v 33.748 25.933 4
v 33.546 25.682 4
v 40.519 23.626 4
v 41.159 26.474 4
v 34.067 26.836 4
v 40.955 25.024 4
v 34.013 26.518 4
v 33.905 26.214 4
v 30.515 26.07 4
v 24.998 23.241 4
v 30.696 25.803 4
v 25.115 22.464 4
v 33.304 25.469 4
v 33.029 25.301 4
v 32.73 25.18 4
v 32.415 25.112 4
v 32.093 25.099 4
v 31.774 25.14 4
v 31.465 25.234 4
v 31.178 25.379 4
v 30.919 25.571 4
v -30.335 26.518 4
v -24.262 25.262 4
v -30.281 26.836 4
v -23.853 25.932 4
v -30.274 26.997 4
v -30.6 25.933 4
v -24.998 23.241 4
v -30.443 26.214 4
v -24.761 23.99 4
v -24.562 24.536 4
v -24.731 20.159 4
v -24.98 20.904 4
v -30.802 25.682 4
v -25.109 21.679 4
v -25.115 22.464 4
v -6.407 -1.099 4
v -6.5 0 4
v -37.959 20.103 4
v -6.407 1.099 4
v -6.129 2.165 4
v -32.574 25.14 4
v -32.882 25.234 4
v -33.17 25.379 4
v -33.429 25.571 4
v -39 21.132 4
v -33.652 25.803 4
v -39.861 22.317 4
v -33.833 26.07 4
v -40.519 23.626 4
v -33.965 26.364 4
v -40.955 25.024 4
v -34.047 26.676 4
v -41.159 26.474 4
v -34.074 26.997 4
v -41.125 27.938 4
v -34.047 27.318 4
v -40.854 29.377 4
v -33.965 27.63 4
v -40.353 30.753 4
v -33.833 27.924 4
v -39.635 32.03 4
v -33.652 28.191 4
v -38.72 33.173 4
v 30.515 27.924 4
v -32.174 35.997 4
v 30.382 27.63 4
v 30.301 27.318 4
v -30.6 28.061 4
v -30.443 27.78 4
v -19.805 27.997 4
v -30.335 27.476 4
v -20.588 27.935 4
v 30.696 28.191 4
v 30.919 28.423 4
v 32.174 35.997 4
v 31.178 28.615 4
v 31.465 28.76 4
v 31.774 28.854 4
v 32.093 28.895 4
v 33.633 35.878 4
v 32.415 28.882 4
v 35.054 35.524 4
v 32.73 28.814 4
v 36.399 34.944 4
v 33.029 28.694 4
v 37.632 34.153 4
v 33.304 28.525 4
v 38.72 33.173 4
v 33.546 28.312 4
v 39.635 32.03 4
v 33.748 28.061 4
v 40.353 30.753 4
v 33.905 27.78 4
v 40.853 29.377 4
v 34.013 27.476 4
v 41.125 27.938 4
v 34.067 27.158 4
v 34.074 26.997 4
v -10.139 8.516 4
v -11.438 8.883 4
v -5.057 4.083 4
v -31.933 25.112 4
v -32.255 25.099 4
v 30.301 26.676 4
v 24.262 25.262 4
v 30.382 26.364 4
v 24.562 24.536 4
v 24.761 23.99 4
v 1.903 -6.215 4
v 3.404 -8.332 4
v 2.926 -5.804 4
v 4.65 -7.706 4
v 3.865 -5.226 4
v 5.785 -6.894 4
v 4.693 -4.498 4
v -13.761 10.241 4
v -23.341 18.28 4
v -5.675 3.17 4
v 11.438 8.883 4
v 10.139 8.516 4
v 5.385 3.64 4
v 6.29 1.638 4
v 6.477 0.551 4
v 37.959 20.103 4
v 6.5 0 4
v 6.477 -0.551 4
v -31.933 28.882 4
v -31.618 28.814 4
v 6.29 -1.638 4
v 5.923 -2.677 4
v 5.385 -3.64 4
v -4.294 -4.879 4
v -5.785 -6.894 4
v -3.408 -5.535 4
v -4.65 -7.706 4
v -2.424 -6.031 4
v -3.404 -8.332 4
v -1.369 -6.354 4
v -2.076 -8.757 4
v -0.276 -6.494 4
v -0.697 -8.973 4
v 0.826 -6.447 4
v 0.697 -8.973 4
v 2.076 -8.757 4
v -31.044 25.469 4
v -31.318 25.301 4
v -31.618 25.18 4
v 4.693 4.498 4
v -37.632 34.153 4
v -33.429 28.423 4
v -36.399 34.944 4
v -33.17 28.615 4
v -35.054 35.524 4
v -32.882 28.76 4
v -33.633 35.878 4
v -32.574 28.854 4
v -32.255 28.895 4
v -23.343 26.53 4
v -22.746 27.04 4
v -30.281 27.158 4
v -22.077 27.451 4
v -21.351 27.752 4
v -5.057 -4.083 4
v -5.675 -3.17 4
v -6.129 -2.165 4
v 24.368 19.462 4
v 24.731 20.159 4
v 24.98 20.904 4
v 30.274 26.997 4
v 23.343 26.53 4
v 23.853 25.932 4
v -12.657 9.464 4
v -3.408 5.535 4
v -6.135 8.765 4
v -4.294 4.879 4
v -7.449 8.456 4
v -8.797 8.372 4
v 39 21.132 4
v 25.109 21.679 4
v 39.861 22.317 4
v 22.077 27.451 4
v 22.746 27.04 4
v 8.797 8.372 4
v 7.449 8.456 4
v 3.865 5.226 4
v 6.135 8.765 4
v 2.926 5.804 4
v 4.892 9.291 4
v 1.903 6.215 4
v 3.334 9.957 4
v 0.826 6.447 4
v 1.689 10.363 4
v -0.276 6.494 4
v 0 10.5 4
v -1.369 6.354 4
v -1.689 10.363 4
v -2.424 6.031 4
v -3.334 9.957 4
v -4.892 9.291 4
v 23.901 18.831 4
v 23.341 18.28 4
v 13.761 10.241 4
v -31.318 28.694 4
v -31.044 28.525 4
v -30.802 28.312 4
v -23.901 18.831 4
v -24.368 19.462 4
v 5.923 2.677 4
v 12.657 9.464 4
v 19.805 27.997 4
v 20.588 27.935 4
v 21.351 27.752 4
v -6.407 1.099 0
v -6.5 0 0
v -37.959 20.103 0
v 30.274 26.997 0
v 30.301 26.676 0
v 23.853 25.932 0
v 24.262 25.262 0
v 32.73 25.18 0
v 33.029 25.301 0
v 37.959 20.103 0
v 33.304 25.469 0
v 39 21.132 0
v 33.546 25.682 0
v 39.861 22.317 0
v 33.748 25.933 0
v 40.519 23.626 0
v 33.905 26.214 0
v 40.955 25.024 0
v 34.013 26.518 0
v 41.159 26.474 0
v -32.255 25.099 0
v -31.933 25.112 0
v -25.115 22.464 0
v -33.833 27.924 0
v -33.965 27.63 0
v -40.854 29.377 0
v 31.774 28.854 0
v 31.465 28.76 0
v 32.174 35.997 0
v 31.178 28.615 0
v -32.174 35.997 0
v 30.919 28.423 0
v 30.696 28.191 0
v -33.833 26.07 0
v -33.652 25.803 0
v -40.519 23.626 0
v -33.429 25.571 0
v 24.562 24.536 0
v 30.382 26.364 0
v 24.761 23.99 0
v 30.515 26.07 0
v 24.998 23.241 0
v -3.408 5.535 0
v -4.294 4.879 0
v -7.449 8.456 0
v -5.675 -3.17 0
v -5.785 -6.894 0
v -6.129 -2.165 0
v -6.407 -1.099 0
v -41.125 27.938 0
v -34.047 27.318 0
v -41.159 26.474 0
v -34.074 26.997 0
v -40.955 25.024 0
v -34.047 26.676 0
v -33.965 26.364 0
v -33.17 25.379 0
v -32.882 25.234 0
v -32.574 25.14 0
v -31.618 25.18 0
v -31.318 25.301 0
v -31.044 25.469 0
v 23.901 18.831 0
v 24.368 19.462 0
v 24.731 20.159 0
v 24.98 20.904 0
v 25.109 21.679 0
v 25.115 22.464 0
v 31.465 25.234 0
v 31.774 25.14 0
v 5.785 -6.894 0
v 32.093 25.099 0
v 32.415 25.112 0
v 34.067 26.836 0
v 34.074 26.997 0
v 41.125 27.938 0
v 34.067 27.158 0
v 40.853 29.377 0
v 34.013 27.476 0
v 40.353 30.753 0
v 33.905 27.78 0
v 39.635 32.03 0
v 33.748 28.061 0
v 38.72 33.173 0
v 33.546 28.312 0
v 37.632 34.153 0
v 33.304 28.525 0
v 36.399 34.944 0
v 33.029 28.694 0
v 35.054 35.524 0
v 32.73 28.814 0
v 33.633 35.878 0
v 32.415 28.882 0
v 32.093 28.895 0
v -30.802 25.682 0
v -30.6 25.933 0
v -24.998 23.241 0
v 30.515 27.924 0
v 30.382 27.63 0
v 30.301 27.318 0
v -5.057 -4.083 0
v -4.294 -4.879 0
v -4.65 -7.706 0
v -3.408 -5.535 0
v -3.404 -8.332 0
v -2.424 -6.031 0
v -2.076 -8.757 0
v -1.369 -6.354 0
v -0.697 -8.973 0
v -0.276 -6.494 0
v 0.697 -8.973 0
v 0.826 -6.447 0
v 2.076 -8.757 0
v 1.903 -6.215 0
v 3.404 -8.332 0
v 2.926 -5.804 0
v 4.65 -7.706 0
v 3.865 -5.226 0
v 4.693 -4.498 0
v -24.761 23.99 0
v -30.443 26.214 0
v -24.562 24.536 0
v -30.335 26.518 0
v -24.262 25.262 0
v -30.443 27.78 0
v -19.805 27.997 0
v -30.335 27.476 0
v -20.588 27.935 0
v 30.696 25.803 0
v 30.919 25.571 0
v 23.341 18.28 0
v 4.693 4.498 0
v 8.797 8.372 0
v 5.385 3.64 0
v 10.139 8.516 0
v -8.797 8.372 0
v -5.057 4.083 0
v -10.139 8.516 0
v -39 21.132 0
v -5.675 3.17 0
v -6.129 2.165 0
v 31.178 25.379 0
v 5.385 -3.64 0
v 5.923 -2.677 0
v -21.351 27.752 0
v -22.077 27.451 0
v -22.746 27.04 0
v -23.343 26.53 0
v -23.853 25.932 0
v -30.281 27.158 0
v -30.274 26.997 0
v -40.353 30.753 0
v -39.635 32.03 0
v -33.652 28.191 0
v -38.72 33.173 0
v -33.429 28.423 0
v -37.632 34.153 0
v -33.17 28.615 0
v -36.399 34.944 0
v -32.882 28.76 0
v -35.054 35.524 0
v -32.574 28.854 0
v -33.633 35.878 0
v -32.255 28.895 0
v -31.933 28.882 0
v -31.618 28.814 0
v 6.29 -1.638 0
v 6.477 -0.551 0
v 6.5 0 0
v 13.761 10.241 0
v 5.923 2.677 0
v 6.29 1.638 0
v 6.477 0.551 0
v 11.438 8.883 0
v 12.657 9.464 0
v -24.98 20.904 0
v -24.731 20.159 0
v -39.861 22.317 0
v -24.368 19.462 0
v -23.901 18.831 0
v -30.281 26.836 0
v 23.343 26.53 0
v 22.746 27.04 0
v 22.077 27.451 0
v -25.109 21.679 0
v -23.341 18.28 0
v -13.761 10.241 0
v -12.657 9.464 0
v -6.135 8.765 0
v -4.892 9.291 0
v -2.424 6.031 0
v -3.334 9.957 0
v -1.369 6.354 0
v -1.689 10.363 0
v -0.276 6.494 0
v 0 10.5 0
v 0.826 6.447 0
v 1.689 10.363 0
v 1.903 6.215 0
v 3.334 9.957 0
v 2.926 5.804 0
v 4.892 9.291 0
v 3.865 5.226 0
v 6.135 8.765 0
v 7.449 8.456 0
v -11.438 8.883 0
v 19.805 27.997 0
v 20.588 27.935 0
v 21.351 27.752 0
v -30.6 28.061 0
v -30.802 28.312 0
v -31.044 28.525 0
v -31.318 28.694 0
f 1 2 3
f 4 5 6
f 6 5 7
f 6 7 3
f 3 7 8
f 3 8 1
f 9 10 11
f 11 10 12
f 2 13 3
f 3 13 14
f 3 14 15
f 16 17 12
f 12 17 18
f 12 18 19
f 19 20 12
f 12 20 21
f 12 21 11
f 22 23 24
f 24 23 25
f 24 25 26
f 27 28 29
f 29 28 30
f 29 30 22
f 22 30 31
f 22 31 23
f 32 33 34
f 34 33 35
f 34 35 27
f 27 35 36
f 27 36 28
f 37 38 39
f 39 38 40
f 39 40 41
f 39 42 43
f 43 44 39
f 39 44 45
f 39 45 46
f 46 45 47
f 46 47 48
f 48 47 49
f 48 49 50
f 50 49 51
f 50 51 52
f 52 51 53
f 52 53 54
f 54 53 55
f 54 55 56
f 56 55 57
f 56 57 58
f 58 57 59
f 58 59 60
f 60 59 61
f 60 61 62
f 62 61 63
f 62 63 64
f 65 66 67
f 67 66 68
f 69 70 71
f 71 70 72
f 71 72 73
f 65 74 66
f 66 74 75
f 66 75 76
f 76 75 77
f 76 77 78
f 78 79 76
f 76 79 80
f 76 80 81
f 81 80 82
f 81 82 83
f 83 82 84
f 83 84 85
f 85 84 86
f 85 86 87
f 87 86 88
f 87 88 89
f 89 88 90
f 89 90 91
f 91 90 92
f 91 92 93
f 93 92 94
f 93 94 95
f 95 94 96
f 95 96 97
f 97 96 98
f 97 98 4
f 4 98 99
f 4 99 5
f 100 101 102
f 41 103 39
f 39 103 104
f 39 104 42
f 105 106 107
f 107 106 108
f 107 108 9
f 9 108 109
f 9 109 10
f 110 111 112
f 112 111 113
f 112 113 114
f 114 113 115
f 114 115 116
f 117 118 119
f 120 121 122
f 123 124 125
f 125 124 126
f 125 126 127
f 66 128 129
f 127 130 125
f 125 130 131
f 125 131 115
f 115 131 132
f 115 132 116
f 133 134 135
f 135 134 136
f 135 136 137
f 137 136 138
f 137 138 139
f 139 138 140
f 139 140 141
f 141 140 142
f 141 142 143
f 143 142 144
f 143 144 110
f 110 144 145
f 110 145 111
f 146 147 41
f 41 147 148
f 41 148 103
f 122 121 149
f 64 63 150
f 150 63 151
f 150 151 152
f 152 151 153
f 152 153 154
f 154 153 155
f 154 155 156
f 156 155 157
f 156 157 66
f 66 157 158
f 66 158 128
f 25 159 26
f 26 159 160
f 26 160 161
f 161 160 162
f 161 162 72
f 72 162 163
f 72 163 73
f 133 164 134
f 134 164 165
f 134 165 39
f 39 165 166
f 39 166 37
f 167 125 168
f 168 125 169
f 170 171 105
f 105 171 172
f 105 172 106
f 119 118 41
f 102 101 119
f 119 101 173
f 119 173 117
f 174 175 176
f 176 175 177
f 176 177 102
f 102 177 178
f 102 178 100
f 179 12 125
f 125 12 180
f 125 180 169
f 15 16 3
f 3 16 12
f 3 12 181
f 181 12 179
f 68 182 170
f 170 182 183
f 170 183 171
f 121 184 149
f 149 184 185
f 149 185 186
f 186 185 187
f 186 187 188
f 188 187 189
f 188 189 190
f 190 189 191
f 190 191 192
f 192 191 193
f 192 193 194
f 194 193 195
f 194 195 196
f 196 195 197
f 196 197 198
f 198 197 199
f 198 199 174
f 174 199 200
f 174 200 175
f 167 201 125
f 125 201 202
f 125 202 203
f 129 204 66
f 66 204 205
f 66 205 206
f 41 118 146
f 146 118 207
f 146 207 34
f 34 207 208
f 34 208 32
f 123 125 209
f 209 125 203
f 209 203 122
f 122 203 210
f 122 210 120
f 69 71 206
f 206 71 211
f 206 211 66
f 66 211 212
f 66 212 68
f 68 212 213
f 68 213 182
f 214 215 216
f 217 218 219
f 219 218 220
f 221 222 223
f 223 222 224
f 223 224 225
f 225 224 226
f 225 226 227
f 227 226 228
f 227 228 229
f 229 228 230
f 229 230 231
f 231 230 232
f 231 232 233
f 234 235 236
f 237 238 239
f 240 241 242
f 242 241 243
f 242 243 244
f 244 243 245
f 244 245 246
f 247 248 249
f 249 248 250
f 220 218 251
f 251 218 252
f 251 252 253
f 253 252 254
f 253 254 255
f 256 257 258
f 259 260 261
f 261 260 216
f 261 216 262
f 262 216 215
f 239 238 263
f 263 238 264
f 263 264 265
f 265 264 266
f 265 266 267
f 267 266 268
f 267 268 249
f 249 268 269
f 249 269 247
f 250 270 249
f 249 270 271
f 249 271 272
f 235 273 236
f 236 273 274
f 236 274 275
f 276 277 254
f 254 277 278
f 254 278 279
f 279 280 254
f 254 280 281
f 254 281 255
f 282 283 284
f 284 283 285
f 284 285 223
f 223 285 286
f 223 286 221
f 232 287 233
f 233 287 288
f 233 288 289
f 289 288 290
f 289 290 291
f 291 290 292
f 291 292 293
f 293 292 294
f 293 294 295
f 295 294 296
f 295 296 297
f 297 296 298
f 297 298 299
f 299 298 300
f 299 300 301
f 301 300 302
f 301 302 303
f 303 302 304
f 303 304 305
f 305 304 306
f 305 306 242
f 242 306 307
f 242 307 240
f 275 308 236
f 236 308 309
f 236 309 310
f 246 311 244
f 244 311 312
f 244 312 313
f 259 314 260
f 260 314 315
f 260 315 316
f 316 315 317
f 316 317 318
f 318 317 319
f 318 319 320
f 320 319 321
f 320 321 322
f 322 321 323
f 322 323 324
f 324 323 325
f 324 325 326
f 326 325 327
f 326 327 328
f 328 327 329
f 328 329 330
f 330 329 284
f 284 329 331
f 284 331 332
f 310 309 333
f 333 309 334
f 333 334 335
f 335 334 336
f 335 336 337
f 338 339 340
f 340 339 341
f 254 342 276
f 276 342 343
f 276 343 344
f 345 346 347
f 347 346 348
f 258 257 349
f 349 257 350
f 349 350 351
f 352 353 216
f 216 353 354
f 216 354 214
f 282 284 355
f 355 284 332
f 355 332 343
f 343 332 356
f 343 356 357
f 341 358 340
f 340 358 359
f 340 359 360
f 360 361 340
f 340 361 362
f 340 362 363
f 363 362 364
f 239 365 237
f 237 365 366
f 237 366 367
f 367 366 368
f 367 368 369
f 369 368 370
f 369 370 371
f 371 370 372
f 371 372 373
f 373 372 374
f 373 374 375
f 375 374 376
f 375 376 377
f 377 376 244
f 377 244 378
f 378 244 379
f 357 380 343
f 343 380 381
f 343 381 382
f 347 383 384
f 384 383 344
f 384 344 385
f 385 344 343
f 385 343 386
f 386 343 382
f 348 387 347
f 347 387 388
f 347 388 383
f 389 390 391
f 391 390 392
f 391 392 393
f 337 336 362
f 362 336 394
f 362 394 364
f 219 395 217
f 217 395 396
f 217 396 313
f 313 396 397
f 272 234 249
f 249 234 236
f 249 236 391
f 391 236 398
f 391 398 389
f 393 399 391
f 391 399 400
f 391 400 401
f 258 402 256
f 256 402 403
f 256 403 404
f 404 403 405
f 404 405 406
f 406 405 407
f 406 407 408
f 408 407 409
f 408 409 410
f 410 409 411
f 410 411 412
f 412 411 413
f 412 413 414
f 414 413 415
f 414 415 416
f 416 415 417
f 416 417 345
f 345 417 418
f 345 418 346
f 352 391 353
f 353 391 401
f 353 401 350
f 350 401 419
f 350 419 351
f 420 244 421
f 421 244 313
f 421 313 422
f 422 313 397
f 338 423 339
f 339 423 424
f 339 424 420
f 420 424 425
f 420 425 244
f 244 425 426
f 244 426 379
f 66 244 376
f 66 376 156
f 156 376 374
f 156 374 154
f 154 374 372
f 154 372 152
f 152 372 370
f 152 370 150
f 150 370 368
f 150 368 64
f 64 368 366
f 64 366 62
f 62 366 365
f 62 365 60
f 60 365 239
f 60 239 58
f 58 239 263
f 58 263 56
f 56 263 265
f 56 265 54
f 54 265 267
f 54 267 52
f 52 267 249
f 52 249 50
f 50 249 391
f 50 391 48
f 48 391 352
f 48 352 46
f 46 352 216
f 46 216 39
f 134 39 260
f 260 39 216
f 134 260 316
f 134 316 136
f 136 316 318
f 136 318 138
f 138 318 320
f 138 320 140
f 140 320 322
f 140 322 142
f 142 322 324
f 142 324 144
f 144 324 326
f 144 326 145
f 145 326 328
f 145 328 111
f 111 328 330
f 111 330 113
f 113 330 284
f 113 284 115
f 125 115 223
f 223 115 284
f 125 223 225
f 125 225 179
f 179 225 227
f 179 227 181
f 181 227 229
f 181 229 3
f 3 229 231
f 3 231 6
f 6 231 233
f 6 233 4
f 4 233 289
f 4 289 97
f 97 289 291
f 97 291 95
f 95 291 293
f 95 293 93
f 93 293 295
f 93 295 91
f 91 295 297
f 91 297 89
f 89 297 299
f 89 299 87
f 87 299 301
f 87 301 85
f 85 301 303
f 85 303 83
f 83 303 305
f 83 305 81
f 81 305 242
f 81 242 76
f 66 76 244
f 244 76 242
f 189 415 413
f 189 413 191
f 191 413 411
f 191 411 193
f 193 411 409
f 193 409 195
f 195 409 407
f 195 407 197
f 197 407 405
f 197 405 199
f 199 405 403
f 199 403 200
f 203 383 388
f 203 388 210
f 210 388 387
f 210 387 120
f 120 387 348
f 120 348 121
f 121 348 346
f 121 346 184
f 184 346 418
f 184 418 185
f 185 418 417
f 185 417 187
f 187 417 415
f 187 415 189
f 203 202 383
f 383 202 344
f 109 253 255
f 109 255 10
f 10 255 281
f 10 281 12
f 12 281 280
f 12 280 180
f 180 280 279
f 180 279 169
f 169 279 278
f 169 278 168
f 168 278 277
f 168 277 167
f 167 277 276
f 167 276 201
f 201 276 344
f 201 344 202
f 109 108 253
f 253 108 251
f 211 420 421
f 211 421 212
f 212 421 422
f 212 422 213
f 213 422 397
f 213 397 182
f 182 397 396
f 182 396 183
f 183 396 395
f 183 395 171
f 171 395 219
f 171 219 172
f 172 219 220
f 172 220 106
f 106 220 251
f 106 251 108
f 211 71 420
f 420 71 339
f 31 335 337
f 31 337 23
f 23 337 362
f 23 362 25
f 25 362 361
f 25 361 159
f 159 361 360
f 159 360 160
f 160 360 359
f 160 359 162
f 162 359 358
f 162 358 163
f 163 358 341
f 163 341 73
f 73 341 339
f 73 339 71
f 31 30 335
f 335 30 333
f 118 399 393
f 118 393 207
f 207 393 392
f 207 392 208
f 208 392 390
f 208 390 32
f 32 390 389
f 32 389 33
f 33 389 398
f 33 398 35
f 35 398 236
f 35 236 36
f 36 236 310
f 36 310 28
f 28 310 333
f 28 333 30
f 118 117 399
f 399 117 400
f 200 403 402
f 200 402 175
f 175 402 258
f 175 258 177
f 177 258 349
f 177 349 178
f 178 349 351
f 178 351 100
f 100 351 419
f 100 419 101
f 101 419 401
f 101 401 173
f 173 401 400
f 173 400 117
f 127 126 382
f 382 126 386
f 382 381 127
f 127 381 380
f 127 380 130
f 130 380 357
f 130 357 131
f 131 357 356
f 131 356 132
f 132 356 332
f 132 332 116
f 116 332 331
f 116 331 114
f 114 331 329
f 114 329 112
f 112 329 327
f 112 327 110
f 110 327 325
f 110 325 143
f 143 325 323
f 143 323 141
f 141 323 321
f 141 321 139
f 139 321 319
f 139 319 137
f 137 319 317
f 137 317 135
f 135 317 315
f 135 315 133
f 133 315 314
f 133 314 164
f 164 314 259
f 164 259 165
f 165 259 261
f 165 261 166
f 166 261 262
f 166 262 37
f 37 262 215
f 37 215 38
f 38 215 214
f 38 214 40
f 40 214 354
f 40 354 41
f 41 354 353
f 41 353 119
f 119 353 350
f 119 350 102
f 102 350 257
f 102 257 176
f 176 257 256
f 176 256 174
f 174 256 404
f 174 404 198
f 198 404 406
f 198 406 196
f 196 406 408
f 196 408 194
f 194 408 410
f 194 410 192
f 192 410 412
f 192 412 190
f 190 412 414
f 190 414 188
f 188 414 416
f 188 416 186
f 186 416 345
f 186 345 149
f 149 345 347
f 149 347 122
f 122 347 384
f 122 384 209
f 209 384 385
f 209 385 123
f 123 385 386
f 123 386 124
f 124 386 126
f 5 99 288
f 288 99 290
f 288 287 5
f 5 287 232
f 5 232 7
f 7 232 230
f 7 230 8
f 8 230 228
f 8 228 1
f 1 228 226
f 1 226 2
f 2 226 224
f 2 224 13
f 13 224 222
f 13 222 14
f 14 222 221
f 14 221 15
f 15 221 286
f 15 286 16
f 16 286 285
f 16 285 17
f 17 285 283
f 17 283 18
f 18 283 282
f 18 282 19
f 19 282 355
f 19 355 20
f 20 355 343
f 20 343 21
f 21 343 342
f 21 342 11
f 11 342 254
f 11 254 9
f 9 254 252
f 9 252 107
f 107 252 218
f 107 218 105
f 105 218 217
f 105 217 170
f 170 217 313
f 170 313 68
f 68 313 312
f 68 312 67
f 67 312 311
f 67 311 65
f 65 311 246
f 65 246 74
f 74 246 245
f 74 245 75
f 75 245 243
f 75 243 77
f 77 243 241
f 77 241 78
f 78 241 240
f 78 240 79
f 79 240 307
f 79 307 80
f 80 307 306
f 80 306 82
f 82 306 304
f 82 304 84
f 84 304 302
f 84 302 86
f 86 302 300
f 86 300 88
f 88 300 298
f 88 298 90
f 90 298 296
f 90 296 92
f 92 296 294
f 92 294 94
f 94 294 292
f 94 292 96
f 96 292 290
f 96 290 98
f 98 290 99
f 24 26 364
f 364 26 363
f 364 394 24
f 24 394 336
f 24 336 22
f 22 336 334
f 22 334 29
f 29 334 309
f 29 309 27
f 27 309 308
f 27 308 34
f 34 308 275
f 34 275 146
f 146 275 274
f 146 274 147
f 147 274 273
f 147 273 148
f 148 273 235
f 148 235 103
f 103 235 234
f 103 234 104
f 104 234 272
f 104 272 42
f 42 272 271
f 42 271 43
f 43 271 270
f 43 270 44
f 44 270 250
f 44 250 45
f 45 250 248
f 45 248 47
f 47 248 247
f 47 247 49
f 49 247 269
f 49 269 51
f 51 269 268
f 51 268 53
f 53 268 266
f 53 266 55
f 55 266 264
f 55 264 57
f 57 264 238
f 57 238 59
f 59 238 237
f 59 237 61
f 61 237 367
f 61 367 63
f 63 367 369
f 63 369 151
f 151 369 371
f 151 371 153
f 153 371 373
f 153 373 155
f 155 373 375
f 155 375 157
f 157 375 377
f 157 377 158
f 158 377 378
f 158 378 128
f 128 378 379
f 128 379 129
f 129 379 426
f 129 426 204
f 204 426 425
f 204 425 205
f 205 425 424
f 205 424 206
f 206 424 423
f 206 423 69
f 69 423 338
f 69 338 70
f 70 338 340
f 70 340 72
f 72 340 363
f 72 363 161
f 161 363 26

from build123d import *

# Parameters (mm, degrees)
SKETCH_1_R      = 6.5
SKETCH_1_R_2    = 1.9
EXTRUDE_1_DEPTH = 4


with BuildPart() as part:
    # 草图1 → 凸台-拉伸1 (new body)
    with BuildSketch(Plane.XY):
        with BuildLine():
            Line((-32.173866611, 35.997079607), (32.173866611, 35.997079607))
            ThreePointArc((32.173866611, 35.997079607), (40.631100198, 30.075260897), (37.958955098, 20.102679619))
            Line((37.958955098, 20.102679619), (5.785088487, -6.894399988))
            ThreePointArc((5.785088487, -6.894399988), (0, -9), (-5.785088487, -6.894399988))
            Line((-5.785088487, -6.894399988), (-37.958955098, 20.102679619))
            ThreePointArc((-37.958955098, 20.102679619), (-40.631100198, 30.075260897), (-32.173866611, 35.997079607))
        make_face()
        Circle(SKETCH_1_R, mode=Mode.SUBTRACT)
        with Locations((32.173866611, 26.997079607)):
            Circle(SKETCH_1_R_2, mode=Mode.SUBTRACT)
        with Locations((-32.173866611, 26.997079607)):
            Circle(SKETCH_1_R_2, mode=Mode.SUBTRACT)
        with BuildLine():
            Line((23.341207762, 18.280191535), (13.760949221, 10.241400126))
            ThreePointArc((13.760949221, 10.241400126), (9.471070536, 8.415299285), (4.891665276, 9.290942408))
            ThreePointArc((4.891665276, 9.290942408), (0, 10.5), (-4.891665276, 9.290942408))
            ThreePointArc((-4.891665276, 9.290942408), (-9.471070536, 8.415299285), (-13.760949221, 10.241400126))
            Line((-13.760949221, 10.241400126), (-23.341207762, 18.280191535))
            ThreePointArc((-23.341207762, 18.280191535), (-24.979589386, 20.904182513), (-24.760576213, 23.989900618))
            ThreePointArc((-24.760576213, 23.989900618), (-24.656325645, 24.26091846), (-24.561979302, 24.535541145))
            ThreePointArc((-24.561979302, 24.535541145), (-22.746291761, 27.040117307), (-19.804549734, 27.997079607))
            Line((-19.804549734, 27.997079607), (19.804549734, 27.997079607))
            ThreePointArc((19.804549734, 27.997079607), (22.746291761, 27.040117307), (24.561979302, 24.535541145))
            ThreePointArc((24.561979302, 24.535541145), (24.656325645, 24.26091846), (24.760576213, 23.989900618))
            ThreePointArc((24.760576213, 23.989900618), (24.979589386, 20.904182513), (23.341207762, 18.280191535))
        make_face(mode=Mode.SUBTRACT)
    extrude(amount=EXTRUDE_1_DEPTH)


solid = part.part
